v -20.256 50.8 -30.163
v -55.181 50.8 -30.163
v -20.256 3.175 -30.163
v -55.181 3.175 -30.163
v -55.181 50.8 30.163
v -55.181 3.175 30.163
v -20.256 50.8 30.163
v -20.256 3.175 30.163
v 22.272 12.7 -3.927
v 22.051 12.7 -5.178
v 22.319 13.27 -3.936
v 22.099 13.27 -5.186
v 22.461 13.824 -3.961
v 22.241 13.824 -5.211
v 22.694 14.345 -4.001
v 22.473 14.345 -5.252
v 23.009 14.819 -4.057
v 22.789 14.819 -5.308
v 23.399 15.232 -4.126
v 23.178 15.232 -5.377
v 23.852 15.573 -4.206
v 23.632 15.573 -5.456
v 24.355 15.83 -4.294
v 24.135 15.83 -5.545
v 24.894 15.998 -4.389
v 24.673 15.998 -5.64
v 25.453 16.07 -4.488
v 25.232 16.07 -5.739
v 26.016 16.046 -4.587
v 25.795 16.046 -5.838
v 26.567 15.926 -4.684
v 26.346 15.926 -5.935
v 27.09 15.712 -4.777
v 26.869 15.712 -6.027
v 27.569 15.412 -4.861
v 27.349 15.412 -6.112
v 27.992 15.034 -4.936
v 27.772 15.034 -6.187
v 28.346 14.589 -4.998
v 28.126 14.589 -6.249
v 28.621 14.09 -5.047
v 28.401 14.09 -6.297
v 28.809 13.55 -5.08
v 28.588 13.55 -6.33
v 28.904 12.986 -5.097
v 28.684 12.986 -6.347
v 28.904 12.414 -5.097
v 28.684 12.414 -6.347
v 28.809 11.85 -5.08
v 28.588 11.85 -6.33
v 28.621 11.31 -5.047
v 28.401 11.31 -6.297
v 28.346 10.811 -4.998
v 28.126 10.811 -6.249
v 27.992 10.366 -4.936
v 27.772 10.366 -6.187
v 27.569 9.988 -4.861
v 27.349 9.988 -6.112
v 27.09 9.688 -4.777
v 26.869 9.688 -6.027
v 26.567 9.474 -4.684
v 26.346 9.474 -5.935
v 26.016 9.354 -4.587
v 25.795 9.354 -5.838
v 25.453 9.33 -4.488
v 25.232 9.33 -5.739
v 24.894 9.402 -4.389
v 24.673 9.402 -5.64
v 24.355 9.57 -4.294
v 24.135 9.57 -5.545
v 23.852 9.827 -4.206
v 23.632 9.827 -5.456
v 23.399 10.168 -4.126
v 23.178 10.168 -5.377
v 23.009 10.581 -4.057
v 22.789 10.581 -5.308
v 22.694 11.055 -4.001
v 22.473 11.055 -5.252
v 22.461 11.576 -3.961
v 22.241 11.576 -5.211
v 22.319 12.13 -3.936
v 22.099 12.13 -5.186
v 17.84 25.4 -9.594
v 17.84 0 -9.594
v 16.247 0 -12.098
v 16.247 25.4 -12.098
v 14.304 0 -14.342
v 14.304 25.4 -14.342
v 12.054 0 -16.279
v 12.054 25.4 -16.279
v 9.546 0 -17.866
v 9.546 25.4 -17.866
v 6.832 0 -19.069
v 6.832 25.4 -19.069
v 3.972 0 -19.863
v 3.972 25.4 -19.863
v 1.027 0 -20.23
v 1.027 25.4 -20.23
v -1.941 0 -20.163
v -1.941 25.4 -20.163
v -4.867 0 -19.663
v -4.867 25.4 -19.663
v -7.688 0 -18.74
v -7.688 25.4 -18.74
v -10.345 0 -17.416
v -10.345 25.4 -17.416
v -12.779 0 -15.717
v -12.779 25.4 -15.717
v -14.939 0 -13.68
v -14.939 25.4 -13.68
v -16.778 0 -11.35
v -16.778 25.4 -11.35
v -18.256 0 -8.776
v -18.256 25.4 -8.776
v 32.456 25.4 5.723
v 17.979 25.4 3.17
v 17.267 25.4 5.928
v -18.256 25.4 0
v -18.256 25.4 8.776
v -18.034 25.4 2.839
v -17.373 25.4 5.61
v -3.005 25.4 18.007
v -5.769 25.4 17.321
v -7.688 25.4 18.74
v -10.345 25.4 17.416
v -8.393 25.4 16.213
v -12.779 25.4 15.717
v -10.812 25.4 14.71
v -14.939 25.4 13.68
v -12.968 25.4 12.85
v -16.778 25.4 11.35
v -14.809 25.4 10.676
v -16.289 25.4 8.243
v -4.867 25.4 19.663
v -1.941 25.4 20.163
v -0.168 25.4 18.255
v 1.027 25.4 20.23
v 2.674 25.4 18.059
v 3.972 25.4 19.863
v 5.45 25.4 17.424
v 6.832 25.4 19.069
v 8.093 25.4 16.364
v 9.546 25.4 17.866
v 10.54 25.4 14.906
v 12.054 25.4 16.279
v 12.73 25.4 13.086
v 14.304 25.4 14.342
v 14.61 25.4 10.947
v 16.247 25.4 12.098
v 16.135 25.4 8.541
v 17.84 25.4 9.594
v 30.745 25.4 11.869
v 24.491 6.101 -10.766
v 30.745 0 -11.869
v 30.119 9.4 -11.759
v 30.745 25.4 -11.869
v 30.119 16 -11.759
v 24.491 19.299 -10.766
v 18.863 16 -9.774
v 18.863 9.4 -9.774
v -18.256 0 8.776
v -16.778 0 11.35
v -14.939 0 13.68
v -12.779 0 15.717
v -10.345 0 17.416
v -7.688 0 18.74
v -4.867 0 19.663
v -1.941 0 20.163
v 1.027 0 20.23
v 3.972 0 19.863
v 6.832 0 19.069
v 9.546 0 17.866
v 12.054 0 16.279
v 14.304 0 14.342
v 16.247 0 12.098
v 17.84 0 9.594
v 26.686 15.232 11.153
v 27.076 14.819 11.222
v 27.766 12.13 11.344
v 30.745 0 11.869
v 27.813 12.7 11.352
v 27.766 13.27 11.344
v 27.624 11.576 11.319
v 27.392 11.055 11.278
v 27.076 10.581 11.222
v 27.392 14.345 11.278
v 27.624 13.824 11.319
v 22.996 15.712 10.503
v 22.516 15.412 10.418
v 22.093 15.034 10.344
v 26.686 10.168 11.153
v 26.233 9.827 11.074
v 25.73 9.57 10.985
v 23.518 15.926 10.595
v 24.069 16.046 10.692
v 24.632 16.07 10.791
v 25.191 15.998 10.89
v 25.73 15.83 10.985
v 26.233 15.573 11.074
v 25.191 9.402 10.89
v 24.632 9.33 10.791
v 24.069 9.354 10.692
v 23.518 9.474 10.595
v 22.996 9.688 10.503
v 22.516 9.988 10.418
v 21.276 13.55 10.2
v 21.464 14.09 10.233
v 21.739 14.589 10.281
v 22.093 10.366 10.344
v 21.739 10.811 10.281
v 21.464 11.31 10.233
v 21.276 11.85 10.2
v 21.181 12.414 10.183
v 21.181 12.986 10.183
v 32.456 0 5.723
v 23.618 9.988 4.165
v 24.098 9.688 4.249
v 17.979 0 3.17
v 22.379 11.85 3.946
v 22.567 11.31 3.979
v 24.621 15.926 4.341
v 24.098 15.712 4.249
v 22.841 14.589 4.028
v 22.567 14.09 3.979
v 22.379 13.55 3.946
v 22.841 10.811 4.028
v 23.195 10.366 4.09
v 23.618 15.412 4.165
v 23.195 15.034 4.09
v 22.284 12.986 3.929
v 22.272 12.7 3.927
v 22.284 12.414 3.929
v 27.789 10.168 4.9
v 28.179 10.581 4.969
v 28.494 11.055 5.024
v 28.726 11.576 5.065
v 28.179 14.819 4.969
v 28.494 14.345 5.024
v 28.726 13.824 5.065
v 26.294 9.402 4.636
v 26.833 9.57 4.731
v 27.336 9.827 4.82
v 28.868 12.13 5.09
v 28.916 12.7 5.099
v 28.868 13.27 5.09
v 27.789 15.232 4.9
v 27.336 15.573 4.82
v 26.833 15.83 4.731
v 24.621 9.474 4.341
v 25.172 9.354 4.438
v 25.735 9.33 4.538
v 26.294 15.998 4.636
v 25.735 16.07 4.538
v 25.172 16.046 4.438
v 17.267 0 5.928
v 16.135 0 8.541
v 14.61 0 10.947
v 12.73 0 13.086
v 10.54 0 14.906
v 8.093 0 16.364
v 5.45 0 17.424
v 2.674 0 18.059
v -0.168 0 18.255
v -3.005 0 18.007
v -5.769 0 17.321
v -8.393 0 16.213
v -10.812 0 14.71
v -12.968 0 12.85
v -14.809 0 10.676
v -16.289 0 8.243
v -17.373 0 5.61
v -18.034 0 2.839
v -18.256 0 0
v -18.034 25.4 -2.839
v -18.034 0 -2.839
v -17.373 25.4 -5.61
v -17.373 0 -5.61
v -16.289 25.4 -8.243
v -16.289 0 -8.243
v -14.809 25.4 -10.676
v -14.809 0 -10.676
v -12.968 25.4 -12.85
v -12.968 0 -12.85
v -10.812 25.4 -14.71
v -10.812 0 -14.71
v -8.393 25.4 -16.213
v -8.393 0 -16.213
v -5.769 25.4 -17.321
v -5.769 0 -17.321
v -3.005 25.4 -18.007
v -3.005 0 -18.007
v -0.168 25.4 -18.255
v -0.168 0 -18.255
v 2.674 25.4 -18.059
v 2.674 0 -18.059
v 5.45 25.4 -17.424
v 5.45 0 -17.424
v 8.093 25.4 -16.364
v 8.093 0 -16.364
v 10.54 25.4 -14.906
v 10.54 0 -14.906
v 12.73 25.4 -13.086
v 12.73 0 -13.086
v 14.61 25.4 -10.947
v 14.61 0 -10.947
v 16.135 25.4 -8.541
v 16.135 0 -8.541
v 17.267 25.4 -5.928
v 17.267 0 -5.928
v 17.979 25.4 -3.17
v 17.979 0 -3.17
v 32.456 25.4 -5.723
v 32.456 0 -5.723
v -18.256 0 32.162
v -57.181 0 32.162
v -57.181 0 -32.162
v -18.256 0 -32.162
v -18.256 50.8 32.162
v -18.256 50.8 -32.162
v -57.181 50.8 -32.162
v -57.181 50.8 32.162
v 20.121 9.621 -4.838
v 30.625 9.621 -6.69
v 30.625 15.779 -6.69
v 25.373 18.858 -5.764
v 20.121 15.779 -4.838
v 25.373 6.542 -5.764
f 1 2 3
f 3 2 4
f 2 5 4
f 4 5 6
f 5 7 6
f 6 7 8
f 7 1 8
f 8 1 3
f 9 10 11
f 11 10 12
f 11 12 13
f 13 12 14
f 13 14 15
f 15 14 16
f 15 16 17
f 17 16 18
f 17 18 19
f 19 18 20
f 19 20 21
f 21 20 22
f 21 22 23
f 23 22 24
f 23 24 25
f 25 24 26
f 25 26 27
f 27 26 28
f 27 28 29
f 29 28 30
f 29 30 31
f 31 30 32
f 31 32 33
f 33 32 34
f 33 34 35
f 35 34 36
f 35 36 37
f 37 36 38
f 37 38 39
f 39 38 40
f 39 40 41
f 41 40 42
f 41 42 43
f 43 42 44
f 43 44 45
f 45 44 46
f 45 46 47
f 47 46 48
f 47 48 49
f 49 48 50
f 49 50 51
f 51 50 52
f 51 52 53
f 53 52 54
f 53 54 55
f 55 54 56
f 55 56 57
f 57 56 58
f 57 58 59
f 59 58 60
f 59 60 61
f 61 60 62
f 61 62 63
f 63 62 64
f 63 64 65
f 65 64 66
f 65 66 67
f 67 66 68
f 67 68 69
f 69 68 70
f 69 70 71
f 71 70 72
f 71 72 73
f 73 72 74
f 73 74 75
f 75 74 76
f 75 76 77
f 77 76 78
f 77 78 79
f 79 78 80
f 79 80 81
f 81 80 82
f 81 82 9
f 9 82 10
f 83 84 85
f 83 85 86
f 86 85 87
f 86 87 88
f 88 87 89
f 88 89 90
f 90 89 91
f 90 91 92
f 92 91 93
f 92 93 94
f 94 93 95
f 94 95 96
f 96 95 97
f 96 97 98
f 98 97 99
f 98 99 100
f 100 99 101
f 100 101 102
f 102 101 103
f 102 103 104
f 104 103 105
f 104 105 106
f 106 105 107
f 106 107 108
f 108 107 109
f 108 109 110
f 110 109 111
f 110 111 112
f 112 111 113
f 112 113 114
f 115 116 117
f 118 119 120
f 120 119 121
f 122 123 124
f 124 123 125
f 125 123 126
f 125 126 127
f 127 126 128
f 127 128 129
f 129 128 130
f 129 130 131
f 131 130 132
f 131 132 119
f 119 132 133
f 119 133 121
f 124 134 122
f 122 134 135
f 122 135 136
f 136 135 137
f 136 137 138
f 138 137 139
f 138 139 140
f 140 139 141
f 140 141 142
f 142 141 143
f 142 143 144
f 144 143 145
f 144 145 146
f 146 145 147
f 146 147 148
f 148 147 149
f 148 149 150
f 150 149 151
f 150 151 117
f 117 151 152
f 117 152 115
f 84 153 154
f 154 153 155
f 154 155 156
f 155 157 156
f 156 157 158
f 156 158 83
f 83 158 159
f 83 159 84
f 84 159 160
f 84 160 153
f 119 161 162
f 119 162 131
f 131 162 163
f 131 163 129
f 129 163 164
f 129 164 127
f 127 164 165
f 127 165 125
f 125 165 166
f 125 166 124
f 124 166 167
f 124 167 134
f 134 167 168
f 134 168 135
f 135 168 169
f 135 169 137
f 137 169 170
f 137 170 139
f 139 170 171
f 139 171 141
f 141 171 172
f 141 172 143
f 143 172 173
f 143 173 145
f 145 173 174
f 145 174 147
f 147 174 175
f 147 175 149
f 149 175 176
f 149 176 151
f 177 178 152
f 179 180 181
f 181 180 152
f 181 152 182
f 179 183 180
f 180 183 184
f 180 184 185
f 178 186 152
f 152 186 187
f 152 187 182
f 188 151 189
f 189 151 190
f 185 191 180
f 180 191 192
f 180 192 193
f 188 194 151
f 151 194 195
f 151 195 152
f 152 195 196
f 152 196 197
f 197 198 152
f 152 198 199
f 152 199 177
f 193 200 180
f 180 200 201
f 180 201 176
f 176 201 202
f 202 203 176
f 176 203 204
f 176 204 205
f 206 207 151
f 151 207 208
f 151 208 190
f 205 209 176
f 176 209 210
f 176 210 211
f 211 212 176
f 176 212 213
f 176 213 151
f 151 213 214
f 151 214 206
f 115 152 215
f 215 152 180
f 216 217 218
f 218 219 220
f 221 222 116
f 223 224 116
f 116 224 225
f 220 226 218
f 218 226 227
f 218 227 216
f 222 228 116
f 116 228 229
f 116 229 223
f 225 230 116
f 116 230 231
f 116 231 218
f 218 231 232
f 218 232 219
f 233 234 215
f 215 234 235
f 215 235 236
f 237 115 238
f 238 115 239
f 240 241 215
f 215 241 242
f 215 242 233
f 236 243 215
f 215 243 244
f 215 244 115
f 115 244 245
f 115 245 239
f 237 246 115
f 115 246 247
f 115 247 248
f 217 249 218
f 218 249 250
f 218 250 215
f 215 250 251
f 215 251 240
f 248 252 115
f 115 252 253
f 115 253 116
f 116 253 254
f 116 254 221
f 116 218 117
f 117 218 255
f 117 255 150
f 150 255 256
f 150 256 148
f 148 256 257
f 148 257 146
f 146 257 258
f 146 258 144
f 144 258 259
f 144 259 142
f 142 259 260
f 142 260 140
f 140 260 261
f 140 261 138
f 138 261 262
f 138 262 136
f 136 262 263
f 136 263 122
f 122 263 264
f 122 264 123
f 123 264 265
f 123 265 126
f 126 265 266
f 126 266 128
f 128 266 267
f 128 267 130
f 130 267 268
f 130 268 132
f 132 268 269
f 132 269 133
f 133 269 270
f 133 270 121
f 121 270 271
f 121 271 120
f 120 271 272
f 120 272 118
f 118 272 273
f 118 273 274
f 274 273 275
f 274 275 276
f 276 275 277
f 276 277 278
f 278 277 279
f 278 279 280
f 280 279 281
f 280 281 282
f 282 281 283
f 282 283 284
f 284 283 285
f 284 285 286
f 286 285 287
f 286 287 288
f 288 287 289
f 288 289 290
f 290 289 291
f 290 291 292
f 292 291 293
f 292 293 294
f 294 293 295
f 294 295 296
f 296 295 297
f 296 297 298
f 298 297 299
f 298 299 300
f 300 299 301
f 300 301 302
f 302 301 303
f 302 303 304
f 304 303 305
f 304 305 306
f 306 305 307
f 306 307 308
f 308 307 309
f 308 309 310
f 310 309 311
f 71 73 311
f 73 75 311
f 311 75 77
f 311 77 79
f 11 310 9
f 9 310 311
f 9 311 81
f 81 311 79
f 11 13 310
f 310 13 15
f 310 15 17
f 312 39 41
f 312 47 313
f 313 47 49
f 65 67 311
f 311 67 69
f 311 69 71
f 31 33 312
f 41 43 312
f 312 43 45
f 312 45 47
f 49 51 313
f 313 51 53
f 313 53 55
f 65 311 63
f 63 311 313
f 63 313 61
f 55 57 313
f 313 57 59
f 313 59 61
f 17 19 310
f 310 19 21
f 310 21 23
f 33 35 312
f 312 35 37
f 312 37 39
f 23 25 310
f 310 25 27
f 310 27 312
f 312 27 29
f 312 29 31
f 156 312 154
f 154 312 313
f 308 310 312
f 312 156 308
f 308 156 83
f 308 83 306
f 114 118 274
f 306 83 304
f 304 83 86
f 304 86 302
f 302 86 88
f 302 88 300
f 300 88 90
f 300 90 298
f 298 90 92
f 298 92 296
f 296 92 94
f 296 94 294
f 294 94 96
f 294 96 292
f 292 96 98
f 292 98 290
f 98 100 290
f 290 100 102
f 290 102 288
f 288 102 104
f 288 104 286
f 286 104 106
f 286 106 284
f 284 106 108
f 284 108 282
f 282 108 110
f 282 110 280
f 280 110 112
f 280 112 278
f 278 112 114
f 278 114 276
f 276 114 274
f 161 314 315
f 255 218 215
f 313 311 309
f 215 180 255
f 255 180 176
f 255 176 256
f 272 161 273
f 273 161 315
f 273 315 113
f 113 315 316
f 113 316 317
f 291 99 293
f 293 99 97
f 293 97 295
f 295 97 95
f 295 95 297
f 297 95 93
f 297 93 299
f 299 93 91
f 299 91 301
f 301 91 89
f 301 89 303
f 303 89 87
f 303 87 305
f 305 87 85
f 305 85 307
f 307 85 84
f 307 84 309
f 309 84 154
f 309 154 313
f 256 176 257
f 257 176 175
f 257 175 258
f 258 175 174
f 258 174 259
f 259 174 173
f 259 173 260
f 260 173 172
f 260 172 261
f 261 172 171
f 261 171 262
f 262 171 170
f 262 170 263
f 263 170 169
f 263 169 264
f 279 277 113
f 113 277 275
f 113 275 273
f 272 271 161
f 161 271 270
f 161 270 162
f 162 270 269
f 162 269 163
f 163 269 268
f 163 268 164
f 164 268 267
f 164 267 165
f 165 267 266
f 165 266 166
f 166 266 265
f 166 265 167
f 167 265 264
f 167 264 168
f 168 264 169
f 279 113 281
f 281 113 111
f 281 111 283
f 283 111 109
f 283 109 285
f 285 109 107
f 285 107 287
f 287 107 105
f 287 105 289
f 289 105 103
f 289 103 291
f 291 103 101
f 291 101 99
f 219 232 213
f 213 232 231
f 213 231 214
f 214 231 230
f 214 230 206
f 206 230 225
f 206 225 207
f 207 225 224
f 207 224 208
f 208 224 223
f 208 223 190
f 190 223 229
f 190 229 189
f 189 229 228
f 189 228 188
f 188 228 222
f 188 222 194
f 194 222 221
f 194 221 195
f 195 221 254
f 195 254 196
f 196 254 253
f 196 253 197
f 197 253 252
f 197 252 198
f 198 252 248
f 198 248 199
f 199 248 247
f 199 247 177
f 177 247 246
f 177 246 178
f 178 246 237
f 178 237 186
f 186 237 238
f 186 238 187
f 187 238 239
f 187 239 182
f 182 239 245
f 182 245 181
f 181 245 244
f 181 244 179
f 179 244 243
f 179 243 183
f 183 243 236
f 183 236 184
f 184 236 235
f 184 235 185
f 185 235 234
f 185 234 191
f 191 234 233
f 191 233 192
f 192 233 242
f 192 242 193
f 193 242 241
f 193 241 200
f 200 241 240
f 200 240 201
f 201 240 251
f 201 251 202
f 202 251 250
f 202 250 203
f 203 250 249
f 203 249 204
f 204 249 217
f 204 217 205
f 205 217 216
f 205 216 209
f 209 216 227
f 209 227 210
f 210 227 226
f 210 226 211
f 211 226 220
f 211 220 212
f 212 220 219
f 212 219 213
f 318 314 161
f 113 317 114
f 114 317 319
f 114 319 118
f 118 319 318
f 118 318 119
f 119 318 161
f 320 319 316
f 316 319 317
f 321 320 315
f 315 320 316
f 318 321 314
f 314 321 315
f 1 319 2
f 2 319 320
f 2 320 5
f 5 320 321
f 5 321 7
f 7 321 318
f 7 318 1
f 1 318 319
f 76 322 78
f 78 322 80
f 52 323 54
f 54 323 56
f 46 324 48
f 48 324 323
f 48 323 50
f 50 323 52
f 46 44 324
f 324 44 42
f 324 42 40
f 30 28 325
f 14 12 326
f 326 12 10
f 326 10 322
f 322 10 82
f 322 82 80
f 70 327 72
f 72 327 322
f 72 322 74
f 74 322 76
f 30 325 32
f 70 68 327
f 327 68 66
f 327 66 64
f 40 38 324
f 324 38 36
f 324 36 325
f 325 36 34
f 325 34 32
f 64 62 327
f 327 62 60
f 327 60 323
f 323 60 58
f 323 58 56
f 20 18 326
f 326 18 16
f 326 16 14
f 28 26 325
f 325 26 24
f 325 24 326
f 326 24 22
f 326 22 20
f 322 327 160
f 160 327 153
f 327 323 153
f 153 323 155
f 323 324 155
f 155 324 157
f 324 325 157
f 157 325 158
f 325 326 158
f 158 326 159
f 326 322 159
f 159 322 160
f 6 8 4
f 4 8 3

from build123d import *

# Parameters (mm, degrees)
BOSS_EXTRUDE1_DEPTH = 25.4
CUT_EXTRUDE1_REACH  = 51.74
SKETCH3_R           = 3.3734375
CUT_EXTRUDE2_REACH  = 51.74
SKETCH4_R           = 3.3734375
SKETCH6_W           = 38.925
SKETCH6_H           = 64.325
SKETCH6_W_2         = 34.925
SKETCH6_H_2         = 60.325
BOSS_EXTRUDE4_DEPTH = 50.8
CUT_EXTRUDE3_DEPTH  = 5.08
CUT_EXTRUDE3_DRAFT  = -4.3
SKETCH9_W           = 34.925
SKETCH9_H           = 60.325
BOSS_EXTRUDE6_DEPTH = 3.175


with BuildPart() as part:
    # Sketch1 → Boss-Extrude1 (new body)
    with BuildSketch(Plane(origin=(0, 0, 0), x_dir=(1, 0, 0), z_dir=(0, 1, 0))):
        with BuildLine():
            Line((17.840314435, -9.593687765), (19.948512047, -3.517460899))
            Line((19.948512047, -3.517460899), (17.978896541, -3.170164544))
            ThreePointArc((17.978896541, -3.170164544), (-18.25625, 0), (17.978896541, 3.170164544))
            Line((17.978896541, 3.170164544), (19.948512047, 3.517460899))
            Line((19.948512047, 3.517460899), (17.840314435, 9.593687765))
            ThreePointArc((17.840314435, 9.593687765), (-20.25625, 0), (17.840314435, -9.593687765))
        make_face()
        with BuildLine():
            Line((30.744742589, 11.869086619), (17.840314435, 9.593687765))
            ThreePointArc((17.840314435, 9.593687765), (19.137110151, 6.63978005), (19.948512047, 3.517460899))
            Line((19.948512047, 3.517460899), (32.45557051, 5.722792755))
            Line((32.45557051, 5.722792755), (30.744742589, 11.869086619))
        make_face()
        with BuildLine():
            Line((32.45557051, -5.722792755), (19.948512047, -3.517460899))
            ThreePointArc((19.948512047, -3.517460899), (19.137110151, -6.63978005), (17.840314435, -9.593687765))
            Line((17.840314435, -9.593687765), (30.744742589, -11.869086619))
            Line((30.744742589, -11.869086619), (32.45557051, -5.722792755))
        make_face()
        with BuildLine():
            ThreePointArc((17.840314435, -9.593687765), (19.137110151, -6.63978005), (19.948512047, -3.517460899))
            Line((19.948512047, -3.517460899), (17.840314435, -9.593687765))
        make_face()
        with BuildLine():
            ThreePointArc((19.948512047, 3.517460899), (19.137110151, 6.63978005), (17.840314435, 9.593687765))
            Line((17.840314435, 9.593687765), (19.948512047, 3.517460899))
        make_face()
    extrude(amount=BOSS_EXTRUDE1_DEPTH)

    # Sketch3 → Cut-Extrude1 (cut, up to next)
    with BuildSketch(Plane(origin=(-1.102665928, 0, 6.253529232), x_dir=(0.984807753012208, 0, 0.17364817766693044), z_dir=(-0.17364817766693044, 0, 0.984807753012208)), mode=Mode.PRIVATE) as cut_extrude1_sk1:
        with Locations((25.988706128, 12.7)):
            Circle(SKETCH3_R)
    cut_extrude1_tool1 = extrude(cut_extrude1_sk1.sketch, amount=-CUT_EXTRUDE1_REACH, mode=Mode.PRIVATE) & part.part
    add(cut_extrude1_tool1.solids().sort_by_distance((24.491213, 12.7, 10.766421))[0], mode=Mode.SUBTRACT)

    # Sketch4 → Cut-Extrude2 (cut, up to next)
    with BuildSketch(Plane(origin=(-1.102665928, 0, -6.253529232), x_dir=(-0.984807753012208, 0, 0.17364817766693136), z_dir=(-0.17364817766693136, 0, -0.984807753012208)), mode=Mode.PRIVATE) as cut_extrude2_sk1:
        with Locations((-25.988706128, 12.7)):
            Circle(SKETCH4_R)
    cut_extrude2_tool1 = extrude(cut_extrude2_sk1.sketch, amount=-CUT_EXTRUDE2_REACH, mode=Mode.PRIVATE) & part.part
    add(cut_extrude2_tool1.solids().sort_by_distance((24.491213, 12.7, -10.766421))[0], mode=Mode.SUBTRACT)

    # Sketch6 → Boss-Extrude4 (add)
    with BuildSketch(Plane.XZ):
        with Locations((-37.71875, 0)):
            Rectangle(SKETCH6_W, SKETCH6_H)
        with Locations((-37.71875, 0)):
            Rectangle(SKETCH6_W_2, SKETCH6_H_2, mode=Mode.SUBTRACT)
    extrude(amount=-BOSS_EXTRUDE4_DEPTH)


with BuildPart() as cut_extrude3_tool:
    # Sketch8 → Cut-Extrude3 (with draft: the straight prism first)
    with BuildSketch(Plane(origin=(-1.102665928, 0, -6.253529232), x_dir=(-0.984807753012208, 0, 0.17364817766693136), z_dir=(-0.17364817766693136, 0, -0.984807753012208))):
        Polygon((-20.273706128, 9.400443212), (-20.273706128, 15.999556788), (-25.988706128, 19.299113577), (-31.703706128, 15.999556788), (-31.703706128, 9.400443212), (-25.988706128, 6.100886423), align=None)
    extrude(amount=-CUT_EXTRUDE3_DEPTH)
    # Cut-Extrude3: the draft: its side faces are tilted about the plane it starts from
    cut_extrude3_sides = [cut_extrude3_tool.faces().sort_by_distance(p)[0] for p in [
        (19.304103421, 12.7, -7.272609663),
        (22.118191575, 17.649335183, -7.76880933),
        (27.746367883, 17.649335183, -8.761208666),
        (30.560456038, 12.7, -9.257408333),
        (27.746367883, 7.750664817, -8.761208666),
        (22.118191575, 7.750664817, -7.76880933),
    ]]
    draft(cut_extrude3_sides, Plane(origin=(-1.102665928, 0, -6.253529232), x_dir=(-0.984807753012208, 0, 0.17364817766693136), z_dir=(-0.17364817766693136, 0, -0.984807753012208)), CUT_EXTRUDE3_DRAFT)


with BuildPart() as part_1:
    add(part.part)

    # Cut-Extrude3: cut by cut_extrude3_tool
    add(cut_extrude3_tool.part, mode=Mode.SUBTRACT)

    # Sketch9 → Boss-Extrude6 (add)
    with BuildSketch(Plane.XZ):
        with Locations((-37.71875, 0)):
            Rectangle(SKETCH9_W, SKETCH9_H)
    extrude(amount=-BOSS_EXTRUDE6_DEPTH)


solid = part_1.part
